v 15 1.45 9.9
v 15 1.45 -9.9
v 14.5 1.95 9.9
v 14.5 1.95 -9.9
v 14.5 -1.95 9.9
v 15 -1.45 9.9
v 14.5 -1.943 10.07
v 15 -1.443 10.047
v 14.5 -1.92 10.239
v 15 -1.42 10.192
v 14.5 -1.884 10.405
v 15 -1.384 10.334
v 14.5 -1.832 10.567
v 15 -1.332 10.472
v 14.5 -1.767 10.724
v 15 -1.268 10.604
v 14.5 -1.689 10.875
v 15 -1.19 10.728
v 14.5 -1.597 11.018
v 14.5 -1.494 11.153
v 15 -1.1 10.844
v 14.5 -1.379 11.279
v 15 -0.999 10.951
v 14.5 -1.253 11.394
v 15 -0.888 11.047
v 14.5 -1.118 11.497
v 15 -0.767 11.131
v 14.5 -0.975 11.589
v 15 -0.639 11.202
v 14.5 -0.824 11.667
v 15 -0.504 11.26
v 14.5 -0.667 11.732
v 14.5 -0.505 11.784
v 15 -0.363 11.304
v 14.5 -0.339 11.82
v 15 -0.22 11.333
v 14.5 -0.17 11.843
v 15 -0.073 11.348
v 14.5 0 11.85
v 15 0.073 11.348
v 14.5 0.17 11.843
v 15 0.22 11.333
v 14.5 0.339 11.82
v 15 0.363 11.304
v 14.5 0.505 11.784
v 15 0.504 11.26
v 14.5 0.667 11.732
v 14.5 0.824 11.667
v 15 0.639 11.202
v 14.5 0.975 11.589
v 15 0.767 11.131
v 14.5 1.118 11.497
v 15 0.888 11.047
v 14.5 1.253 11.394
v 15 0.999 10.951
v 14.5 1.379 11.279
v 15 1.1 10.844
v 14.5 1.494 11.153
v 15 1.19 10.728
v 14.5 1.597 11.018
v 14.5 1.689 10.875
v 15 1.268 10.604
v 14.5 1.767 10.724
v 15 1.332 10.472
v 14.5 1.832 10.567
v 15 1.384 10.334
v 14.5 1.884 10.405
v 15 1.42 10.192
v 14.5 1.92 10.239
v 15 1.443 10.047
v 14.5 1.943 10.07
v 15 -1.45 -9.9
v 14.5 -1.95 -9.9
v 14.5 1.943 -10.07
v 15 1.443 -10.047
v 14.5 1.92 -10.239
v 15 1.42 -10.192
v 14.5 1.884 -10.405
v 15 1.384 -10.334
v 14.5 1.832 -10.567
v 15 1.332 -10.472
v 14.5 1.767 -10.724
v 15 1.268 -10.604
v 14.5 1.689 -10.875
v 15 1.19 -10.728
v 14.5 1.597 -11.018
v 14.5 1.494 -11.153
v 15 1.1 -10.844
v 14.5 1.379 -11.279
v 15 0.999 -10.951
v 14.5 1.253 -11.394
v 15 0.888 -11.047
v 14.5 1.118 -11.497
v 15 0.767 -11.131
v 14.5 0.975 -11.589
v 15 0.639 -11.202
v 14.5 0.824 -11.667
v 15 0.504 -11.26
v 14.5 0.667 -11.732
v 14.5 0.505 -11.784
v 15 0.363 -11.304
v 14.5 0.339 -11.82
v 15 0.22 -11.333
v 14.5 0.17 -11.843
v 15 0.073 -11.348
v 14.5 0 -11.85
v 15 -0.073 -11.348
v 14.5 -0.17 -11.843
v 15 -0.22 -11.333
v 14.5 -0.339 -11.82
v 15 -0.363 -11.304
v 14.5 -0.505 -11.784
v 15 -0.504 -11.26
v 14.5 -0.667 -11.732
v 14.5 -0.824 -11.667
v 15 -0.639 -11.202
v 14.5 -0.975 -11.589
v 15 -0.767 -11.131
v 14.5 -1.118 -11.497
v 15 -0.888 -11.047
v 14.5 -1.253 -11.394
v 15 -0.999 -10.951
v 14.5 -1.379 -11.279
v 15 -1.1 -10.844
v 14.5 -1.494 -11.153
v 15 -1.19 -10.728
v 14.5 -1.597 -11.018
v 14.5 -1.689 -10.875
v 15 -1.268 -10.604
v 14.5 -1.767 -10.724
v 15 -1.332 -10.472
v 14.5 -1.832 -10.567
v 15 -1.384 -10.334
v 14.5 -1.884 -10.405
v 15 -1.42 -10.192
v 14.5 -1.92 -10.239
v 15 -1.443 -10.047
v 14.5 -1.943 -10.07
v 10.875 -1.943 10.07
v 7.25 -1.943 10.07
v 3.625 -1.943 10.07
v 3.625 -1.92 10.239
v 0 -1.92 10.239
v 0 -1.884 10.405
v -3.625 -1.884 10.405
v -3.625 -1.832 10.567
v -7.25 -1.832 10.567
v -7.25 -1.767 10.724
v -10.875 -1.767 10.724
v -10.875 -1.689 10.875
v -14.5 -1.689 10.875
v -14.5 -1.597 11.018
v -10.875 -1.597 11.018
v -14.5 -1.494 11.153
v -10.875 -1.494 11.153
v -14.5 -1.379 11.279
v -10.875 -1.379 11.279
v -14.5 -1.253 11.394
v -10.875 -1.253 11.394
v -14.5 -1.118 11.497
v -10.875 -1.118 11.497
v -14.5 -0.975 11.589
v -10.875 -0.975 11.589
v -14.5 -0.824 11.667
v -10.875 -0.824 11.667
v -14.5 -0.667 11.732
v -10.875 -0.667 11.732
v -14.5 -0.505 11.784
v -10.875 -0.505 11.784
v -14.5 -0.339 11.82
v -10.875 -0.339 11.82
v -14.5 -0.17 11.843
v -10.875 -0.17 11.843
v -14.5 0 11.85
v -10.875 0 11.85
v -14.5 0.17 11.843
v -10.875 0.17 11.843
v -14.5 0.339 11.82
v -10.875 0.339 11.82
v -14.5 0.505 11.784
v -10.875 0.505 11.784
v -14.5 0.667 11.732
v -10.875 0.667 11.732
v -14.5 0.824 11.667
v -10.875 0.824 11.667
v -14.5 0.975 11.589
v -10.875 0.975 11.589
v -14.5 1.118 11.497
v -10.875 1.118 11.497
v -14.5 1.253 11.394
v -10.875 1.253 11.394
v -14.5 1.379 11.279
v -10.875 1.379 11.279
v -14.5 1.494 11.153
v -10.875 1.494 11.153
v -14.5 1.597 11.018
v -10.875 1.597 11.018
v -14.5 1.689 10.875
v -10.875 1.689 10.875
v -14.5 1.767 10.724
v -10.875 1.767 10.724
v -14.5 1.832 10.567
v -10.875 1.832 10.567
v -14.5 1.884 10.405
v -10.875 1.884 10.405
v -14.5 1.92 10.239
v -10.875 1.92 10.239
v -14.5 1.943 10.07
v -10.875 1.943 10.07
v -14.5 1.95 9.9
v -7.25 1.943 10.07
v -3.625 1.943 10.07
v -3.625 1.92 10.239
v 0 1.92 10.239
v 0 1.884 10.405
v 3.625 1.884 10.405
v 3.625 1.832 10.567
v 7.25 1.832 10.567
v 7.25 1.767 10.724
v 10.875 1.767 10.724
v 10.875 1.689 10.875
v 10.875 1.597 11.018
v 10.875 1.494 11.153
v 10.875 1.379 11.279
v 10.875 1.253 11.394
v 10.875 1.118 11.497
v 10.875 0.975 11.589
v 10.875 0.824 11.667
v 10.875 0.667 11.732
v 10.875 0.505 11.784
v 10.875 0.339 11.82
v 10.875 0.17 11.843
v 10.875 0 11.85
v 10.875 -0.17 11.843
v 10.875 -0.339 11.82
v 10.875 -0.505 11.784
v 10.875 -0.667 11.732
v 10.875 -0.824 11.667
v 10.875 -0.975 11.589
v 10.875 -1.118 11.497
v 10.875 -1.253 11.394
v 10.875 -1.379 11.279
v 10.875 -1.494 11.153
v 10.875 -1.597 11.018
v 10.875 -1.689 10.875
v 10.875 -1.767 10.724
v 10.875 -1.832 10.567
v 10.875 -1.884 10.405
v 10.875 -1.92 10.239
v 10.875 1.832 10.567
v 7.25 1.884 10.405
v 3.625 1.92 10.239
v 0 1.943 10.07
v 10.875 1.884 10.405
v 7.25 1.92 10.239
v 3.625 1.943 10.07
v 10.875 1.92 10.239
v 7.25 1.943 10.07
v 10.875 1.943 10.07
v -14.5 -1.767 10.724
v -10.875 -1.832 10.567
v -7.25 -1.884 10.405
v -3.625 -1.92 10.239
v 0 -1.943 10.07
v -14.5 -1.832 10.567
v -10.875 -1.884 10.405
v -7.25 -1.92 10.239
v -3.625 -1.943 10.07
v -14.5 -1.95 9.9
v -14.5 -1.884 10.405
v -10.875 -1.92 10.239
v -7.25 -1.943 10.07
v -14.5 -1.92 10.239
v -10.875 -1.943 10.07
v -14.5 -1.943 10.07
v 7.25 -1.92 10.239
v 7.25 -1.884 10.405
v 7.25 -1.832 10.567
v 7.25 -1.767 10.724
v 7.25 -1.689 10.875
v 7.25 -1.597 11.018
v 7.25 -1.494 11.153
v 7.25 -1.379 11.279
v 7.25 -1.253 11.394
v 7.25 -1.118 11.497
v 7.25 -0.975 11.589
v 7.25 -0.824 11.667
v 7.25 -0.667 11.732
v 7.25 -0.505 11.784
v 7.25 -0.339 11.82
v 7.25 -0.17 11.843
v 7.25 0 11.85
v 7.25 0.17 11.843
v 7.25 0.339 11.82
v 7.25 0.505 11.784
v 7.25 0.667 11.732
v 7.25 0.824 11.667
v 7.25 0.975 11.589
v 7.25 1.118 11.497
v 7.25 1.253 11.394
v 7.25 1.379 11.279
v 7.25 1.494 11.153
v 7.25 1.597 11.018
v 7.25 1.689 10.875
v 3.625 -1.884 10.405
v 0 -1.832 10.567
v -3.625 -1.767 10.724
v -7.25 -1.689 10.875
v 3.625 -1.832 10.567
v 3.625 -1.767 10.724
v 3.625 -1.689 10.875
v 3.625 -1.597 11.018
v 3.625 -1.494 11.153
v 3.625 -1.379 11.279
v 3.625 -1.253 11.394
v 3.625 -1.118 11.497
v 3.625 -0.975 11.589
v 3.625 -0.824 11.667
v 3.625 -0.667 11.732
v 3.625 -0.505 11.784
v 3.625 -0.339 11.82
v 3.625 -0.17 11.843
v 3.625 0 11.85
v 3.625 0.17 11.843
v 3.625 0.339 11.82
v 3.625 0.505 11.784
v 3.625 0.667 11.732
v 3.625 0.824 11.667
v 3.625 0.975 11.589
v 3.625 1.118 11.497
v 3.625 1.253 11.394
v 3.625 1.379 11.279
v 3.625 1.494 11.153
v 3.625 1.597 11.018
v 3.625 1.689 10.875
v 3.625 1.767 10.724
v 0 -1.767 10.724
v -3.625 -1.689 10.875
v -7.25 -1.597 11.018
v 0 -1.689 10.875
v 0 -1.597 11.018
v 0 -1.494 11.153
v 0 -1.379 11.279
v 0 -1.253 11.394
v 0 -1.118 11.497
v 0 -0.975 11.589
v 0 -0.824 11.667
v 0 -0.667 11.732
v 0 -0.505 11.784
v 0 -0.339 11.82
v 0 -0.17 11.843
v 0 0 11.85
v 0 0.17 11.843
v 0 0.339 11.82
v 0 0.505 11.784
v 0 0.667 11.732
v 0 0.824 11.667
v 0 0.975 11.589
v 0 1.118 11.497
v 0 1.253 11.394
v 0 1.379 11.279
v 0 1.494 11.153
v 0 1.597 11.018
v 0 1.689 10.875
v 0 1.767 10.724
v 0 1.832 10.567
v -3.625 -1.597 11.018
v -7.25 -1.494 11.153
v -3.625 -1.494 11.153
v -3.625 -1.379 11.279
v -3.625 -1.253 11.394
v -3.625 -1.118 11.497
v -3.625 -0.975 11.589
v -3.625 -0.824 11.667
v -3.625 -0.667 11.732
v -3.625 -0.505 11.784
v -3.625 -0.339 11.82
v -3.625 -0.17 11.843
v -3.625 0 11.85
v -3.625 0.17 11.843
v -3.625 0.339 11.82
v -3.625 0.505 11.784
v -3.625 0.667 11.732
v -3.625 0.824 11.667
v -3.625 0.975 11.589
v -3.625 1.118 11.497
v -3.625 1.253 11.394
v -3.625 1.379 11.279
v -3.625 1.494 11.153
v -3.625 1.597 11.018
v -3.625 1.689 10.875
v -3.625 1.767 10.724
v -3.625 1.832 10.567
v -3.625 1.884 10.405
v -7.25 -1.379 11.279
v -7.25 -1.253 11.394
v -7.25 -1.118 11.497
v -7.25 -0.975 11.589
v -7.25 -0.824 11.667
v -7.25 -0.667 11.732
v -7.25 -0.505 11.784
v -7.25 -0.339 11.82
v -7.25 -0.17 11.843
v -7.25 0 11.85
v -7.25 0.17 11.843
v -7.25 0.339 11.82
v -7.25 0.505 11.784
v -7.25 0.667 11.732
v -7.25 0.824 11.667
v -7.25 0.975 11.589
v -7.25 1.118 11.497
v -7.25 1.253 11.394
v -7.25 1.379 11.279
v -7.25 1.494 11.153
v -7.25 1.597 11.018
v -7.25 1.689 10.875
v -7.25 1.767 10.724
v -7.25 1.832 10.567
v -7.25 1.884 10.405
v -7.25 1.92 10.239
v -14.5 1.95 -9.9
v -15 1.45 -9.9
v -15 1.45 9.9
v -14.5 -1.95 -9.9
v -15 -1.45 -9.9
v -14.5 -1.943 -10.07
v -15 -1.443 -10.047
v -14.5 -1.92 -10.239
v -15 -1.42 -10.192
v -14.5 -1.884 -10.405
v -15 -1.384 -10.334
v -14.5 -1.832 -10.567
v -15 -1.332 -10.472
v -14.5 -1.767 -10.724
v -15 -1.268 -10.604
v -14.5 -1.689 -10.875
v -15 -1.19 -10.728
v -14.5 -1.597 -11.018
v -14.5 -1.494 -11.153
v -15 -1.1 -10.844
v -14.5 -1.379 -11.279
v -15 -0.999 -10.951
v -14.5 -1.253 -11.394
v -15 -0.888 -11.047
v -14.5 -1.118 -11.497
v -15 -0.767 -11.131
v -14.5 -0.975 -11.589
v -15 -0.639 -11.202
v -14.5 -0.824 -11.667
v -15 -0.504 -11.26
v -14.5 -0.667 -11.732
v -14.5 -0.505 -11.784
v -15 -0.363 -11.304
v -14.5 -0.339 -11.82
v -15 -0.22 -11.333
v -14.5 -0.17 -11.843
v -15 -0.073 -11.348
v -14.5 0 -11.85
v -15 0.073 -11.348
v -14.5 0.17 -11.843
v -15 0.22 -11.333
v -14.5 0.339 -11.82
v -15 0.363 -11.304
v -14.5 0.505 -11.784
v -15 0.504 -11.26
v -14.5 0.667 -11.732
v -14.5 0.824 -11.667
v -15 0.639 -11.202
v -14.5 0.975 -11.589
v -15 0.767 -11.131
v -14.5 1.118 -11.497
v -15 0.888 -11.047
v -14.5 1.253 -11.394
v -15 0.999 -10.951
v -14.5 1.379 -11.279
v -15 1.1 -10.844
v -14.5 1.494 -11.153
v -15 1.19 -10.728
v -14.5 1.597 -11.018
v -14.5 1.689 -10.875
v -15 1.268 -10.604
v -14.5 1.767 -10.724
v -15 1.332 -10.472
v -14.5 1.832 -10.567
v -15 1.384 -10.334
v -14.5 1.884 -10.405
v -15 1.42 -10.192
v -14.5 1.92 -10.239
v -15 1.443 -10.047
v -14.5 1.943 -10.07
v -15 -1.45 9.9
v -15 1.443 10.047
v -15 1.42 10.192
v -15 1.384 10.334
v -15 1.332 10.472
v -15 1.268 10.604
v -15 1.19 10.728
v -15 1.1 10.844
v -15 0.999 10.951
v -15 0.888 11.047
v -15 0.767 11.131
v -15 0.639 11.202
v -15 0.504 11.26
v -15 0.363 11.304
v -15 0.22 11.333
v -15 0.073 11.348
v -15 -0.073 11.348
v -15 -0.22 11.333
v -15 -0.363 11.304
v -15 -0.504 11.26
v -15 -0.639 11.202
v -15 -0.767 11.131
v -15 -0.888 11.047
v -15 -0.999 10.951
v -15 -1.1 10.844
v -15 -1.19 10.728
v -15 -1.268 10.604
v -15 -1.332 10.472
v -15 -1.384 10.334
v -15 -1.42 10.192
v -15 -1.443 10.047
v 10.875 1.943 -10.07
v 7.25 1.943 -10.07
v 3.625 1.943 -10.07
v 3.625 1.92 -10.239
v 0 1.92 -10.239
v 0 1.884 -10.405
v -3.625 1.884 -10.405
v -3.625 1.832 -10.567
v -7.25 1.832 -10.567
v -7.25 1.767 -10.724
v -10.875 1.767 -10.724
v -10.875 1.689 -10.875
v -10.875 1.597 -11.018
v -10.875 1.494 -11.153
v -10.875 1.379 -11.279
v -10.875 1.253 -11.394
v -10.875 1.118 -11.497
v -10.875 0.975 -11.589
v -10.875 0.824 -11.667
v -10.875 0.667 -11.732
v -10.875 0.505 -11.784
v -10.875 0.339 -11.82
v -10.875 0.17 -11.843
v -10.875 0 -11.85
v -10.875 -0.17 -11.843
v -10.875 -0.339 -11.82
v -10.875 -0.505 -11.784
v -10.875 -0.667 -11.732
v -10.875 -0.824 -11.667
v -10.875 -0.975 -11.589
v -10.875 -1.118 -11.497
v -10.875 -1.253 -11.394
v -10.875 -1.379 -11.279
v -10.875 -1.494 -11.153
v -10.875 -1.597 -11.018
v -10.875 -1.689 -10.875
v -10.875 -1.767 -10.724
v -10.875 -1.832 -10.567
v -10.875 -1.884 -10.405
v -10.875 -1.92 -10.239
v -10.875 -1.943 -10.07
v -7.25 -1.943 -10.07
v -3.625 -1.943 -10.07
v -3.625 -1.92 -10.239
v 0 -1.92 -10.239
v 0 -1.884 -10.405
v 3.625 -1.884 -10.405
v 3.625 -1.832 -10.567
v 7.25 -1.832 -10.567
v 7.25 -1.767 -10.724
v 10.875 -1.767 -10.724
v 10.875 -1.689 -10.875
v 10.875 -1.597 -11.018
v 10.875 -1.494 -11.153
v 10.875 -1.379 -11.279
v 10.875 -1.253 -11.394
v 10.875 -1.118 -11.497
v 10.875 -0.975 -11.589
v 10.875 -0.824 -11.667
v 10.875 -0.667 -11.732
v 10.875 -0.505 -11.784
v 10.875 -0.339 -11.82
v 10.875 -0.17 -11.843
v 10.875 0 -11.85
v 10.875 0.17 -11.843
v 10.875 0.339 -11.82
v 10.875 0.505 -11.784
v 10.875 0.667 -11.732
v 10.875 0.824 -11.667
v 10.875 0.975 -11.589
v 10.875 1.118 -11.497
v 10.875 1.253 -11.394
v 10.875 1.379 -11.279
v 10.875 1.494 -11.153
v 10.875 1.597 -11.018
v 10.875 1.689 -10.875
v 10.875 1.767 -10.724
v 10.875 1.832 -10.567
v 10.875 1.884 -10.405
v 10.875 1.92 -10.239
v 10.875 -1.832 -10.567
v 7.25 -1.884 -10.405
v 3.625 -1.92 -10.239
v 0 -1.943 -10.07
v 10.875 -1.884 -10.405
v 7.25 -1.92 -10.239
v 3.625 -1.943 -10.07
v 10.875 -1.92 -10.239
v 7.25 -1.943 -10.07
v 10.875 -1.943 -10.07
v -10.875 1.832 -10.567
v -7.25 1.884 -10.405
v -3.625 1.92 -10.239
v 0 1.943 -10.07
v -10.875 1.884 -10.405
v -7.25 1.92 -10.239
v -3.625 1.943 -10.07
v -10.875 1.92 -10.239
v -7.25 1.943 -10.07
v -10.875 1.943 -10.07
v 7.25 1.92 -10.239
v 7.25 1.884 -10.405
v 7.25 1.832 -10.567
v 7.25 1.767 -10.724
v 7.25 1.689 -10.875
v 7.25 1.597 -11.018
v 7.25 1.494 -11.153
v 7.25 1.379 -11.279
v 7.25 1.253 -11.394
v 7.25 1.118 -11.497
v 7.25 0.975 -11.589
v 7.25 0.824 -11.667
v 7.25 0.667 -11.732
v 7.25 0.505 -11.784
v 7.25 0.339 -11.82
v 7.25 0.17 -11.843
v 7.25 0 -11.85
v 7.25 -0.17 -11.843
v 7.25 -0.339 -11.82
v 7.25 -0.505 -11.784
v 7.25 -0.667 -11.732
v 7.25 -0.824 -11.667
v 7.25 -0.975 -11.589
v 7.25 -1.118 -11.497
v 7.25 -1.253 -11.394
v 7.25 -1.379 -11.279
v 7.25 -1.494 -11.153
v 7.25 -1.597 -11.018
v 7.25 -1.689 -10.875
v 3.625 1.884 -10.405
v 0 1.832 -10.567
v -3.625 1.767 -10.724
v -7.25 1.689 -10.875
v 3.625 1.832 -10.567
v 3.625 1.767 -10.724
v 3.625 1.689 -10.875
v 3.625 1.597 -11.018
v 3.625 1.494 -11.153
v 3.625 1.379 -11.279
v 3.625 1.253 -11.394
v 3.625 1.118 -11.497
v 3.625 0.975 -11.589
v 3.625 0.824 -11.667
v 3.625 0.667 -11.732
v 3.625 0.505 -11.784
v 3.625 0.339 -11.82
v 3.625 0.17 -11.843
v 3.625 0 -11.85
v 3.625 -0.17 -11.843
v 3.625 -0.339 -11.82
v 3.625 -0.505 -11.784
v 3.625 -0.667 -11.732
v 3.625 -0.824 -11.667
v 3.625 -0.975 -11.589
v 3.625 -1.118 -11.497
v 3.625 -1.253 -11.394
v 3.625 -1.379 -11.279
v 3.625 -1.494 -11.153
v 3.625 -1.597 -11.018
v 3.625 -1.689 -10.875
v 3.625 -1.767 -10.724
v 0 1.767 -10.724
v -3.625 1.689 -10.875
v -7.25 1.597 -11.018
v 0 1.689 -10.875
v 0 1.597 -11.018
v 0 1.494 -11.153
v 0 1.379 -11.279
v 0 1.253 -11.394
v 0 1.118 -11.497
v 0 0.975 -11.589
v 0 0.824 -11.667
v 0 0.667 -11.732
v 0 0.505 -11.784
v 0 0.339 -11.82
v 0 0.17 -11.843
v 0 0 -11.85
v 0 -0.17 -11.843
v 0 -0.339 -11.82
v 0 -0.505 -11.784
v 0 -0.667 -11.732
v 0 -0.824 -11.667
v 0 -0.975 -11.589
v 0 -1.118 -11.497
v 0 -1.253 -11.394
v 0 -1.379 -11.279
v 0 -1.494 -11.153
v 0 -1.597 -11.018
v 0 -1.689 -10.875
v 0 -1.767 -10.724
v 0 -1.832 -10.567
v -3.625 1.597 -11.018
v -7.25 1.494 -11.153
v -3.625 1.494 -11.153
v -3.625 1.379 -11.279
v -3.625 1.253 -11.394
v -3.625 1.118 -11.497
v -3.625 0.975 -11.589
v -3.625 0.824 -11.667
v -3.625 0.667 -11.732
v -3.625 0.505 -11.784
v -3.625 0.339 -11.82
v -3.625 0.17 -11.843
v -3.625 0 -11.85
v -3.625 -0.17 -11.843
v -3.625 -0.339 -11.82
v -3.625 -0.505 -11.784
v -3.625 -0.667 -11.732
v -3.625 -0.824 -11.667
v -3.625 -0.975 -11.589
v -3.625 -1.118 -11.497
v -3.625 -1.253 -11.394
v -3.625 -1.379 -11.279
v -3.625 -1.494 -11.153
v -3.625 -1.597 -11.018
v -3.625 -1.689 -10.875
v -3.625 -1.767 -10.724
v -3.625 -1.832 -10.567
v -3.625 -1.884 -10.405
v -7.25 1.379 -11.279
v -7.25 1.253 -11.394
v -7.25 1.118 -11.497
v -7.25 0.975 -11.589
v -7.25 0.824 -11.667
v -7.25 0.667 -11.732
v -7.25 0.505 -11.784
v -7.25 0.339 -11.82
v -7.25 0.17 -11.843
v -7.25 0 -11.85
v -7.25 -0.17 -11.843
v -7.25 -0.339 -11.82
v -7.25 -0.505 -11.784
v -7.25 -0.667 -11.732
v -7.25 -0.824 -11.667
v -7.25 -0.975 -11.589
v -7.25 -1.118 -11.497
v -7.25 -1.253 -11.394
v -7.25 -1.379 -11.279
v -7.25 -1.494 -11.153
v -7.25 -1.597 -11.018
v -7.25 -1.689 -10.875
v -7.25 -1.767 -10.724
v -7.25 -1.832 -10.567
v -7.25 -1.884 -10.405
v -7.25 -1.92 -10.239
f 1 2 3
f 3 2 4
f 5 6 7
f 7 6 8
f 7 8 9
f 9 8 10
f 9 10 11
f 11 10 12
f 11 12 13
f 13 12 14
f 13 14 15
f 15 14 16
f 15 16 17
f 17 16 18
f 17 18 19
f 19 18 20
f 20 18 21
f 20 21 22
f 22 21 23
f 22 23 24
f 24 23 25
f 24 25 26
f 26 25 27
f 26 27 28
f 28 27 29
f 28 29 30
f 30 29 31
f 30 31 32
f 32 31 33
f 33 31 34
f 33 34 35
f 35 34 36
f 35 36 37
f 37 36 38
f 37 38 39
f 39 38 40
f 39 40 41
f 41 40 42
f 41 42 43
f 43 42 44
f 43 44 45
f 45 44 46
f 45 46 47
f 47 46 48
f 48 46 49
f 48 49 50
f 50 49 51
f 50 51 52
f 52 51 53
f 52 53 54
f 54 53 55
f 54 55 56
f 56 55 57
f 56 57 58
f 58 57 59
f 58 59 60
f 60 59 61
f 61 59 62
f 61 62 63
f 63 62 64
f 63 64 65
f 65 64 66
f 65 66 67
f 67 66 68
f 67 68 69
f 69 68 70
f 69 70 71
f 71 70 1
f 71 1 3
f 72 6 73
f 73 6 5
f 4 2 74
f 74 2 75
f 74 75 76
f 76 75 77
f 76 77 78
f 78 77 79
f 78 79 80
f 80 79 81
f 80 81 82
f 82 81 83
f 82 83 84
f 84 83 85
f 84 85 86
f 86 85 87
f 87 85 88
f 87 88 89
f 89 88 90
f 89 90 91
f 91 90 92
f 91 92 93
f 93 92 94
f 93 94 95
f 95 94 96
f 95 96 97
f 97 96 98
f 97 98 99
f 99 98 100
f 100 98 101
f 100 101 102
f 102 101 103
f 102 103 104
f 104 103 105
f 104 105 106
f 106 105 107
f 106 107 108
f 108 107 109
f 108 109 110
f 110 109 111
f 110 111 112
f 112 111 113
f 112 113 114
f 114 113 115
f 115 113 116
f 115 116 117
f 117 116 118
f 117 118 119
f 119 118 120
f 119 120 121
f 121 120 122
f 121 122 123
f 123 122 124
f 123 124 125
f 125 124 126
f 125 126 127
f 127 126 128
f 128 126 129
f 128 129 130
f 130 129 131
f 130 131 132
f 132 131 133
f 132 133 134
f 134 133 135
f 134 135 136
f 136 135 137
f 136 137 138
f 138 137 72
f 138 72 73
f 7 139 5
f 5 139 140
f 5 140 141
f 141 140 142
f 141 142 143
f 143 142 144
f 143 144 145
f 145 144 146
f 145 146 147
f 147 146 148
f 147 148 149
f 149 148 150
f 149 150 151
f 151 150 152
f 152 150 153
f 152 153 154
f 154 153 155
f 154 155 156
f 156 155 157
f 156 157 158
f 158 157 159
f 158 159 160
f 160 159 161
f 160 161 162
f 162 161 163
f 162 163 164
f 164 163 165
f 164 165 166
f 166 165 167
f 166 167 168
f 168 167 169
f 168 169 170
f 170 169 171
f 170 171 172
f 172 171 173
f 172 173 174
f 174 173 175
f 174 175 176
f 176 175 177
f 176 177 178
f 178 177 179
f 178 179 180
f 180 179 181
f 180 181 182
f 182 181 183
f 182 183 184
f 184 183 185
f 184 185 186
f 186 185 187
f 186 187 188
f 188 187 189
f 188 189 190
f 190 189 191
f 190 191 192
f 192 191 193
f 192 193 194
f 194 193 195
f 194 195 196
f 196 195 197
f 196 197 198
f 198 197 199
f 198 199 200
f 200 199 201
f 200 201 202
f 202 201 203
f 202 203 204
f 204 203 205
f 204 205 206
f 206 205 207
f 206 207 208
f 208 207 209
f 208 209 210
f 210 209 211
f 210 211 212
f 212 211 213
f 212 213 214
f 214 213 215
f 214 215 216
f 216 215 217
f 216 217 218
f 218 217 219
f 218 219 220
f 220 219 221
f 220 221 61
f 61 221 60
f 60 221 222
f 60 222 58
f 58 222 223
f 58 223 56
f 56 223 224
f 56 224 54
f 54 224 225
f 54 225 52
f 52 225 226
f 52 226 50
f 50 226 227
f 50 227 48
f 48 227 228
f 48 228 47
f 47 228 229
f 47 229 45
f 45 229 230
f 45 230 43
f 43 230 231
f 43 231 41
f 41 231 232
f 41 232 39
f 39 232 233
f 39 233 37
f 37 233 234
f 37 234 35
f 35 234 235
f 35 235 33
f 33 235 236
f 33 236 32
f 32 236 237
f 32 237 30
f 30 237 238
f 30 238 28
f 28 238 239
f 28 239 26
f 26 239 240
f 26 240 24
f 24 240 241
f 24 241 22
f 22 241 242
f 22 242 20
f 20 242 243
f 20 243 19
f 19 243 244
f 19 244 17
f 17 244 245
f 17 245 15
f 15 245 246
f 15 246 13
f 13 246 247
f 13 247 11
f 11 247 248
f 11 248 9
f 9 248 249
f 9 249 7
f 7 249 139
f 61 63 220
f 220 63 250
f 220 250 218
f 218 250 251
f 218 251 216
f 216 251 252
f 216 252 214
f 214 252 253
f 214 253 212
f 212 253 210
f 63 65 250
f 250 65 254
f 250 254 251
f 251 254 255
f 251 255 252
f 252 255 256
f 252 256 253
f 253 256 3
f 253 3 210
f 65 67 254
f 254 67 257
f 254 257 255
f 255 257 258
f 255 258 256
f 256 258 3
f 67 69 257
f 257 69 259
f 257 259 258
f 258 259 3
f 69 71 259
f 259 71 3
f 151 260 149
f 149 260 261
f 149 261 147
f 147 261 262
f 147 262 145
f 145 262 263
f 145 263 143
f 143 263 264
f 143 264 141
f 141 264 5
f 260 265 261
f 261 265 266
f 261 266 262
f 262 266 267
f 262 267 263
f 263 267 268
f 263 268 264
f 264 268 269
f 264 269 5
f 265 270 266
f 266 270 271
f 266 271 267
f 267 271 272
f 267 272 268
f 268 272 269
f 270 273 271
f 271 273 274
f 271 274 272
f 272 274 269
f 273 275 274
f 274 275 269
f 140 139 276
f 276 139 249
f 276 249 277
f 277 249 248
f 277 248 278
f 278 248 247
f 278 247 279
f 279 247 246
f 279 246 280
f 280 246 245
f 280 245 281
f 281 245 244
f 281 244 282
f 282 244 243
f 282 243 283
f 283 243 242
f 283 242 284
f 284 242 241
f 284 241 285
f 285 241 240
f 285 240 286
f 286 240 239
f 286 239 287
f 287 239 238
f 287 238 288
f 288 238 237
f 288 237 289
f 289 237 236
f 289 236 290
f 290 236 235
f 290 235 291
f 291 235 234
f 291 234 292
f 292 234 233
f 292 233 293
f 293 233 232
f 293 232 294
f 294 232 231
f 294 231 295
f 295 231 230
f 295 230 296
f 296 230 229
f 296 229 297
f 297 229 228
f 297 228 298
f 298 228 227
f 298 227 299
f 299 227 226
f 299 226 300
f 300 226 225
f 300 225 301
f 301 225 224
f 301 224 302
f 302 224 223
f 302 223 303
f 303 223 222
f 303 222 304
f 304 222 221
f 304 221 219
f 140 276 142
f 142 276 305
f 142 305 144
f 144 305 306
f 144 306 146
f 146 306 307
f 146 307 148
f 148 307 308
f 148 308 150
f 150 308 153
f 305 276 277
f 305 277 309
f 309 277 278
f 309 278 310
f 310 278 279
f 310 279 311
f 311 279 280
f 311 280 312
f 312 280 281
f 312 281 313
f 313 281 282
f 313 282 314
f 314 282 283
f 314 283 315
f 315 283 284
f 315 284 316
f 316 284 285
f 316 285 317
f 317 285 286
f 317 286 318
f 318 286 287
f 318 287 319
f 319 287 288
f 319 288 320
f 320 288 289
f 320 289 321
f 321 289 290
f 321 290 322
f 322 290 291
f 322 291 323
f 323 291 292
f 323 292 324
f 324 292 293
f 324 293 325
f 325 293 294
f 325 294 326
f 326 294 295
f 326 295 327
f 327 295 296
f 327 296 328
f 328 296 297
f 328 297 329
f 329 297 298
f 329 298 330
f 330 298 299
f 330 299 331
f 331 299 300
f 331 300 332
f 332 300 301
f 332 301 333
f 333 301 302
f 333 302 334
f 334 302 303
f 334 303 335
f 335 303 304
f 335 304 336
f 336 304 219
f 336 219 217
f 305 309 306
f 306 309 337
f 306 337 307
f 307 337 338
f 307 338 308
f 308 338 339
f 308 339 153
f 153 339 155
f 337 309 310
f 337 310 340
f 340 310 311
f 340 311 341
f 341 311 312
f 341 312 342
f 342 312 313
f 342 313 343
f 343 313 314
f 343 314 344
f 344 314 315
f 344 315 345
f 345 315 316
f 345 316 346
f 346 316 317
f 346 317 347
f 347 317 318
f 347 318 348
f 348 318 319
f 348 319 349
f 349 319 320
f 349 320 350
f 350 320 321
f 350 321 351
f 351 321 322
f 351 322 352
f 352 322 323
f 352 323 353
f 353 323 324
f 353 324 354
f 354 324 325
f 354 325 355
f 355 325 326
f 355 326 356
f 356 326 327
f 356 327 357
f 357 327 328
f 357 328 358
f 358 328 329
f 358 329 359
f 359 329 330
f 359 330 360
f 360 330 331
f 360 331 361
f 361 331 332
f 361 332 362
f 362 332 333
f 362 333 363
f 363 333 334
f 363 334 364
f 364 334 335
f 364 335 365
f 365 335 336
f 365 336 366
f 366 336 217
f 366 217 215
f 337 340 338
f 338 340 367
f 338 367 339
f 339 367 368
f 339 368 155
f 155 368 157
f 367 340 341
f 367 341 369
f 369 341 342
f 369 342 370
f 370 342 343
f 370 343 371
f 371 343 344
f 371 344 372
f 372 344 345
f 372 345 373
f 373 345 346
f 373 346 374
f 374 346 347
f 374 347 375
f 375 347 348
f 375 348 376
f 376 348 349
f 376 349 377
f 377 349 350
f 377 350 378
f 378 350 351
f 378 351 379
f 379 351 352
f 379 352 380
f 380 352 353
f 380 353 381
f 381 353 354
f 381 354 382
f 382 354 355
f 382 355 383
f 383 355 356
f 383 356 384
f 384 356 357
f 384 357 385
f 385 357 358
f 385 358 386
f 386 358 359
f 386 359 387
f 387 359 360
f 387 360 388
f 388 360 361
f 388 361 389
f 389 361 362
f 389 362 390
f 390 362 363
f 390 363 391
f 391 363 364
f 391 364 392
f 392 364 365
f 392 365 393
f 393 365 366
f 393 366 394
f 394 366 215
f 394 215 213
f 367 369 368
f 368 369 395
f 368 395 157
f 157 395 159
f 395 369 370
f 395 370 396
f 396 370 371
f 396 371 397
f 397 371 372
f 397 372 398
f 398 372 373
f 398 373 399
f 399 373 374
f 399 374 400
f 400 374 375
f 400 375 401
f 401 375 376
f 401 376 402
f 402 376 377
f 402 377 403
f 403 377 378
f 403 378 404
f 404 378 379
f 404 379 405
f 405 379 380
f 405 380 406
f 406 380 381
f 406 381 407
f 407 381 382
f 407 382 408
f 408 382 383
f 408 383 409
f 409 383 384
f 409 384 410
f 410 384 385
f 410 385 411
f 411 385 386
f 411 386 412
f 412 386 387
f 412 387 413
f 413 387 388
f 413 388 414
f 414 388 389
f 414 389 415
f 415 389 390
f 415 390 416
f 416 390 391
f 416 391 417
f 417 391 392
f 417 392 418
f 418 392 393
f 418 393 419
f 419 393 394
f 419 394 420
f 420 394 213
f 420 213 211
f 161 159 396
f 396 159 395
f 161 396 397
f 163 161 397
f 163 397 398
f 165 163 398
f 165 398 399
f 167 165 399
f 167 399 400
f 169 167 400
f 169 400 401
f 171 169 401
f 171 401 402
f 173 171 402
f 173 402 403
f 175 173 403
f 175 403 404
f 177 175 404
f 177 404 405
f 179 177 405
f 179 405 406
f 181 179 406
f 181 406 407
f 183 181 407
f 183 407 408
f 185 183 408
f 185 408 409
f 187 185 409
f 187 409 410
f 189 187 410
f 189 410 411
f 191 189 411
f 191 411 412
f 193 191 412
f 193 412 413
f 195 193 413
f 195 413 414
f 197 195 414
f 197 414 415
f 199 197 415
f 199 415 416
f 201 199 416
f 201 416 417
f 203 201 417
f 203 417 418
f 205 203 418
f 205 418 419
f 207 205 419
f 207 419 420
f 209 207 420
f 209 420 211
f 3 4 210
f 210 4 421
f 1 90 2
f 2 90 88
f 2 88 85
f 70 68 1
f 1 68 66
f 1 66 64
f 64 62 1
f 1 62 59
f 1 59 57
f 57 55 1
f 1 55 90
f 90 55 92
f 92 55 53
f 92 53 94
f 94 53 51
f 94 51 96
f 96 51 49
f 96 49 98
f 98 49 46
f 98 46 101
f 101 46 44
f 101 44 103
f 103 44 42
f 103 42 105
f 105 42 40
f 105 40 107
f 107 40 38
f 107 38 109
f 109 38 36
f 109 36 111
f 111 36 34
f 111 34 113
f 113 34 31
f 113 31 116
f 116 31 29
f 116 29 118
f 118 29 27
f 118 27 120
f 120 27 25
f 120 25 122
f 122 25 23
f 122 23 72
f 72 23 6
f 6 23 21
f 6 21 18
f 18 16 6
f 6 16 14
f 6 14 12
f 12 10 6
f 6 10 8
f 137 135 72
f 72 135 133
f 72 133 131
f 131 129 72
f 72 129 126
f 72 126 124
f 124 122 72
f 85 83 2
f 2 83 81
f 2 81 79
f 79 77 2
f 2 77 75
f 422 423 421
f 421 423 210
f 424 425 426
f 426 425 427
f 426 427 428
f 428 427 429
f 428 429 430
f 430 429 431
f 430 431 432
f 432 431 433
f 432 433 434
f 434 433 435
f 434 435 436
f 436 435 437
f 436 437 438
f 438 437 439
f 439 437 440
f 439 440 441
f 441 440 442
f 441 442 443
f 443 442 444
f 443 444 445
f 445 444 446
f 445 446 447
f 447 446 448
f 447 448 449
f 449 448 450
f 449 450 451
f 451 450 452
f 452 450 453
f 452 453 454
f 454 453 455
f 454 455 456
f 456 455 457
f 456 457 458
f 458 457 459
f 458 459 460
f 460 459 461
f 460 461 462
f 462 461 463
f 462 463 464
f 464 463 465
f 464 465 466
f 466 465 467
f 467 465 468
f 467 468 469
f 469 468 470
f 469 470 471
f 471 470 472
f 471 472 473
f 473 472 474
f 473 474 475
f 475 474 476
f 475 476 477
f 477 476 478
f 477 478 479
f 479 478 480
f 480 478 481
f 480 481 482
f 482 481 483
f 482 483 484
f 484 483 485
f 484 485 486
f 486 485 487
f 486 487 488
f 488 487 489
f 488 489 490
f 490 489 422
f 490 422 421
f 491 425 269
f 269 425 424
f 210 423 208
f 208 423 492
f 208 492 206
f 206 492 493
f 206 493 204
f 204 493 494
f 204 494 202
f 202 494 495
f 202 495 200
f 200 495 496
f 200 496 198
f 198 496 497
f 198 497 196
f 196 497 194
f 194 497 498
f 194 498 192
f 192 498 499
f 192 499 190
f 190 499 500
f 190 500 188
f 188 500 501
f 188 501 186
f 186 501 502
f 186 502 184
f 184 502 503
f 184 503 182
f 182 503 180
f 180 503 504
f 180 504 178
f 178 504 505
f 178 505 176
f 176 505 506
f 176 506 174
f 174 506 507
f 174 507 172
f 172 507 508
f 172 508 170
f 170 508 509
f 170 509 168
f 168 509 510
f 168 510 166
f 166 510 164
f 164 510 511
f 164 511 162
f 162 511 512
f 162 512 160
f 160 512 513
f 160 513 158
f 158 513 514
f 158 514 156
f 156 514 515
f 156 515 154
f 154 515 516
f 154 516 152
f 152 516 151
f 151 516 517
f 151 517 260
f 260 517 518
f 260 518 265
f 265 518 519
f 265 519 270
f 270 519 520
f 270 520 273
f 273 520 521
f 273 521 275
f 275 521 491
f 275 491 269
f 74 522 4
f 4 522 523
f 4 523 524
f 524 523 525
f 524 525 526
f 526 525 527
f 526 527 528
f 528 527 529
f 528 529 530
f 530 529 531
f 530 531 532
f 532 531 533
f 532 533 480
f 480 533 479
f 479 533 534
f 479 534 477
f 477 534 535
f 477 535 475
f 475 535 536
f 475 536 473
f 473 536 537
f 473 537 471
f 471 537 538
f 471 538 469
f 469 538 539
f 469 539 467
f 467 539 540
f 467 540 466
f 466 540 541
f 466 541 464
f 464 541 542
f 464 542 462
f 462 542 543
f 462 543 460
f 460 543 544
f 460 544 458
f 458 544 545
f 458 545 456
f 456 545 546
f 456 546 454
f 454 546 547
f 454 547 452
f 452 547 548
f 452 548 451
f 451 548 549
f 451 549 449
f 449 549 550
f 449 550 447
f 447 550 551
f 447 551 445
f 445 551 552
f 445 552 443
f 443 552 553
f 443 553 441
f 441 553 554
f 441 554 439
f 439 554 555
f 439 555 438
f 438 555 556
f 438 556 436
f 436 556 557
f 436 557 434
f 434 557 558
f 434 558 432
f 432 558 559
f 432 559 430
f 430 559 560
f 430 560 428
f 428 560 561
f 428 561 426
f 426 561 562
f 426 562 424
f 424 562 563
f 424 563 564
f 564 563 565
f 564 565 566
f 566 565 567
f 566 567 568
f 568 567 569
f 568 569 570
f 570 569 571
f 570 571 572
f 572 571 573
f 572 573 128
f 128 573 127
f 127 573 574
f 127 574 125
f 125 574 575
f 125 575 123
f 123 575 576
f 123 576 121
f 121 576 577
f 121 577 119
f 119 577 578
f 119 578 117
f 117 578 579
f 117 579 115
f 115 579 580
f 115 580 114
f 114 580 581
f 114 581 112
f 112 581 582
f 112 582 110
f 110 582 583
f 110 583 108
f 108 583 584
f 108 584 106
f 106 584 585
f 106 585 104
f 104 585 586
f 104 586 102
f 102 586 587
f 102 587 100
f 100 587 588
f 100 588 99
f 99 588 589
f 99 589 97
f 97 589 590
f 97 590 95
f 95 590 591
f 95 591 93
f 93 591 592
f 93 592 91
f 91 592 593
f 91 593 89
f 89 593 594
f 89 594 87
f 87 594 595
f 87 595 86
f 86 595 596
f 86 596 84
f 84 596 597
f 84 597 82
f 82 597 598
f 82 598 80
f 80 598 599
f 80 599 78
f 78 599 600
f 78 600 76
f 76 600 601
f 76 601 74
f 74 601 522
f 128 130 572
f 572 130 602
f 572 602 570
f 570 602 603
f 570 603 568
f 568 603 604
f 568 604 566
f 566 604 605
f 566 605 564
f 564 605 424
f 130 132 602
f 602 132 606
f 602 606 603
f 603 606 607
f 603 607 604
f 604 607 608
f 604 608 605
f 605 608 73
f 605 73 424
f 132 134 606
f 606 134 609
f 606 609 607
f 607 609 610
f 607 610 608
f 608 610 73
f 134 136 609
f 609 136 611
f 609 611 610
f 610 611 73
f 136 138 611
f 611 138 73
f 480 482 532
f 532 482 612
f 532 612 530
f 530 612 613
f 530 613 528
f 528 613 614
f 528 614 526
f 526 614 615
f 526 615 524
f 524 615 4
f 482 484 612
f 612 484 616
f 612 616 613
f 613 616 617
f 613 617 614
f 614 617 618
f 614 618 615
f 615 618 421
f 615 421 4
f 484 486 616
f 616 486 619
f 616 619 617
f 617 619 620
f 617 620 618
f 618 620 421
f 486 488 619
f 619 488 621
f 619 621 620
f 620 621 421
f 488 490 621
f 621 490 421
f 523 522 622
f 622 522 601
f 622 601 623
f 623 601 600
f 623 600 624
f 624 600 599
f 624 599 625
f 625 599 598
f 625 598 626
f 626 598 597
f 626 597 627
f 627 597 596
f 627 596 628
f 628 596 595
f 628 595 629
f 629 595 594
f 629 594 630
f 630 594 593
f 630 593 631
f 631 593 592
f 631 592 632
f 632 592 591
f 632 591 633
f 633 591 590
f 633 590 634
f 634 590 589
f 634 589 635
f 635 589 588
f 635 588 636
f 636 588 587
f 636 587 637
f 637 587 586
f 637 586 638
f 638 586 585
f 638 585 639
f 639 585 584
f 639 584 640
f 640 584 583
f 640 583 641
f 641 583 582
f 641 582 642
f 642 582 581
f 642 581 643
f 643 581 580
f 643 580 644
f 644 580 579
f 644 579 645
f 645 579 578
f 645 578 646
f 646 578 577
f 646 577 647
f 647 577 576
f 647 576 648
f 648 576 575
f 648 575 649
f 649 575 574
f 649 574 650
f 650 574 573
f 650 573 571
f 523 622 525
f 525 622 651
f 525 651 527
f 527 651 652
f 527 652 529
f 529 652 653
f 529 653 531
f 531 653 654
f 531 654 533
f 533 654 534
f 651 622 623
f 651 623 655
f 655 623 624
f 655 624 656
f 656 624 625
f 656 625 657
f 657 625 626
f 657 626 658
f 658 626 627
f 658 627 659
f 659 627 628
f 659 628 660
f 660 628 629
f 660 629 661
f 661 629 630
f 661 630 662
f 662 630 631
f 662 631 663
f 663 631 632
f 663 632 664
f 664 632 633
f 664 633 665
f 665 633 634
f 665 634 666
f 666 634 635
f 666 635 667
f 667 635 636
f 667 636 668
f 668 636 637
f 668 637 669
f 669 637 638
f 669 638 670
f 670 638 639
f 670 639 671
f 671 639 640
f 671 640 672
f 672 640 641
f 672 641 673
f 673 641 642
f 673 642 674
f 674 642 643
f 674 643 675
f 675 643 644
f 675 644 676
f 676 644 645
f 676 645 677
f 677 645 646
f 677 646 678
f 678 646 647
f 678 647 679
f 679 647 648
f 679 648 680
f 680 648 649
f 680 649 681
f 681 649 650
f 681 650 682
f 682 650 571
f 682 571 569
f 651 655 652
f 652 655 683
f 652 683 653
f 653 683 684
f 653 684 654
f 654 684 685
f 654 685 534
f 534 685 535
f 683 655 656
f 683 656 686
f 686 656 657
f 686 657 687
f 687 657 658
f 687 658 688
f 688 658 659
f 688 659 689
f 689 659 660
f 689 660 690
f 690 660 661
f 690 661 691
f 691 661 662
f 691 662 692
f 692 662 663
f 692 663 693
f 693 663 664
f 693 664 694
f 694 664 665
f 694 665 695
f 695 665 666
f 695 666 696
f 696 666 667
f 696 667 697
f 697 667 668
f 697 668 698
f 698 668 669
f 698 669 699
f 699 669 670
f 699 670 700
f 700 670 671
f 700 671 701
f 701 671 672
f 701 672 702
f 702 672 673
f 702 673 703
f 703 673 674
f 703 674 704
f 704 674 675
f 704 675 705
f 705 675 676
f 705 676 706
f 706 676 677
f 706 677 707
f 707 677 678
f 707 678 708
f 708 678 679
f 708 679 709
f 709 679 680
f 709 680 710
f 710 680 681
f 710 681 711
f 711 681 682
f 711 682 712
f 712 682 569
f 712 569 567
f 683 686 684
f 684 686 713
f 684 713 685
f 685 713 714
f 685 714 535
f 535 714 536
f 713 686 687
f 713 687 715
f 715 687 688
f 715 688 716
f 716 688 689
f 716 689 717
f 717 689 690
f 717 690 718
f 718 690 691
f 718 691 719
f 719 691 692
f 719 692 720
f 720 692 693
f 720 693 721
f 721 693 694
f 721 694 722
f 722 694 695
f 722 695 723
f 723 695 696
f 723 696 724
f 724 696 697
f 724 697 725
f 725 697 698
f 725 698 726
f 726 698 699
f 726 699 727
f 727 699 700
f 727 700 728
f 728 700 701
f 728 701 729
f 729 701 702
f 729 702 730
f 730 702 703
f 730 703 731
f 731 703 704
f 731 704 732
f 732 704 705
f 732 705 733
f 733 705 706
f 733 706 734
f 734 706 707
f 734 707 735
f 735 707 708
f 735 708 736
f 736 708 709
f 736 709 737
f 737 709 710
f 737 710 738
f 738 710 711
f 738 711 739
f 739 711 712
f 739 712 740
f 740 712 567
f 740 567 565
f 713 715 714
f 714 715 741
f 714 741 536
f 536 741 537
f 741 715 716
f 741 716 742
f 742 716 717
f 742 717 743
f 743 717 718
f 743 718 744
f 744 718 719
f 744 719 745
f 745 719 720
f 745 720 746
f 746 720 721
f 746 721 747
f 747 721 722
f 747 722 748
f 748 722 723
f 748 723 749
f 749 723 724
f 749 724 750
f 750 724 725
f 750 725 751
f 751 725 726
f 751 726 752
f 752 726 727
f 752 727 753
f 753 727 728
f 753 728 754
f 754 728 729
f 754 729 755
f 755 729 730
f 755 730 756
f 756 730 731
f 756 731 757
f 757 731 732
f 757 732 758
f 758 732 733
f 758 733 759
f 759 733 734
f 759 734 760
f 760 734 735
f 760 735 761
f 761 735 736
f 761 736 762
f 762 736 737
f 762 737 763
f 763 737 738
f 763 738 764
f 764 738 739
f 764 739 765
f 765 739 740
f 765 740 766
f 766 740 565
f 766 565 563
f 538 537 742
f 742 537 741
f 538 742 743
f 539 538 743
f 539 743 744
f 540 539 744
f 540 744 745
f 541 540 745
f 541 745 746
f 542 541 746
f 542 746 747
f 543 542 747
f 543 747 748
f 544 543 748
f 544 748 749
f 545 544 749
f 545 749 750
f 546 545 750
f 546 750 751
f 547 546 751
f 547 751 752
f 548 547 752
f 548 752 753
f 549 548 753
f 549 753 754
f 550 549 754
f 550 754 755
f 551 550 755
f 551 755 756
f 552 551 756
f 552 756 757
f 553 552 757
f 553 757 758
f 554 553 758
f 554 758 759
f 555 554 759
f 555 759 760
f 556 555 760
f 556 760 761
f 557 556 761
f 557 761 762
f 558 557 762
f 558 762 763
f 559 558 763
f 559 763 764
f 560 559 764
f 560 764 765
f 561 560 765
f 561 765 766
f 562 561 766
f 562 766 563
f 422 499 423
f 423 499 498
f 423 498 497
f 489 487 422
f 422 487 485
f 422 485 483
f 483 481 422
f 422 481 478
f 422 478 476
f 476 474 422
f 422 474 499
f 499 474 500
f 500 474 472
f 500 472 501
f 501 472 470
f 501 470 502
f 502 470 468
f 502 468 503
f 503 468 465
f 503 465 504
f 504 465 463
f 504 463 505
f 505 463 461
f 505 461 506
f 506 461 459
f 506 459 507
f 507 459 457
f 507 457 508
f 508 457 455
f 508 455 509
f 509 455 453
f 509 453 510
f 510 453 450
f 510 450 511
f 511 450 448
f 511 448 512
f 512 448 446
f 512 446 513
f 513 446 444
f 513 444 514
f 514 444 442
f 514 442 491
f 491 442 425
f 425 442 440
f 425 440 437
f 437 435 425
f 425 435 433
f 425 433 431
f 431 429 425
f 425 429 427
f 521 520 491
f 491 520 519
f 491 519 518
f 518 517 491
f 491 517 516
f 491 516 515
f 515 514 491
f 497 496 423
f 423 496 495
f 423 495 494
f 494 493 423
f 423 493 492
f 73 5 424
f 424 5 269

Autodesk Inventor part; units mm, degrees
ref_plane "YZ Plane" through (0, 0, 0) normal (1, 0, 0) x (0, 1, 0)
ref_plane "XZ Plane" through (0, 0, 0) normal (0, 1, 0) x (-1, 0, 0)
ref_plane "XY Plane" through (0, 0, 0) normal (0, 0, 1) x (1, 0, 0)
sketch "Sketch1" plane through (0, 0, 0) normal (1, 0, 0) x (0, 1, 0)
  line L0 (0, 9.9) -> (0, -9.9) construction
  line L1 (-1.95, 9.9) -> (-1.95, -9.9)
  line L2 (1.95, -9.9) -> (1.95, 9.9)
  arc A0 (1.95, 9.9) -> (-1.95, 9.9) centre (0, 9.9) ccw
  arc A1 (-1.95, -9.9) -> (1.95, -9.9) centre (0, -9.9) ccw
  point P0 (0, 0)
  dimension "d0" = 9.9
  dimension "d1" = 3.9
extrude "Extrusion1" add sketch "Sketch1" along normal mid plane 30
chamfer "Chamfer1" distance 0.5 angle 45 8 edges at (-15, 1.95, 0) (-15, 0, -11.85) (-15, -1.95, 0) (-15, 0, 11.85) (15, 1.95, 0) (15, 0, 11.85) (15, -1.95, 0) (15, 0, -11.85)
properties part number "Domino2"
